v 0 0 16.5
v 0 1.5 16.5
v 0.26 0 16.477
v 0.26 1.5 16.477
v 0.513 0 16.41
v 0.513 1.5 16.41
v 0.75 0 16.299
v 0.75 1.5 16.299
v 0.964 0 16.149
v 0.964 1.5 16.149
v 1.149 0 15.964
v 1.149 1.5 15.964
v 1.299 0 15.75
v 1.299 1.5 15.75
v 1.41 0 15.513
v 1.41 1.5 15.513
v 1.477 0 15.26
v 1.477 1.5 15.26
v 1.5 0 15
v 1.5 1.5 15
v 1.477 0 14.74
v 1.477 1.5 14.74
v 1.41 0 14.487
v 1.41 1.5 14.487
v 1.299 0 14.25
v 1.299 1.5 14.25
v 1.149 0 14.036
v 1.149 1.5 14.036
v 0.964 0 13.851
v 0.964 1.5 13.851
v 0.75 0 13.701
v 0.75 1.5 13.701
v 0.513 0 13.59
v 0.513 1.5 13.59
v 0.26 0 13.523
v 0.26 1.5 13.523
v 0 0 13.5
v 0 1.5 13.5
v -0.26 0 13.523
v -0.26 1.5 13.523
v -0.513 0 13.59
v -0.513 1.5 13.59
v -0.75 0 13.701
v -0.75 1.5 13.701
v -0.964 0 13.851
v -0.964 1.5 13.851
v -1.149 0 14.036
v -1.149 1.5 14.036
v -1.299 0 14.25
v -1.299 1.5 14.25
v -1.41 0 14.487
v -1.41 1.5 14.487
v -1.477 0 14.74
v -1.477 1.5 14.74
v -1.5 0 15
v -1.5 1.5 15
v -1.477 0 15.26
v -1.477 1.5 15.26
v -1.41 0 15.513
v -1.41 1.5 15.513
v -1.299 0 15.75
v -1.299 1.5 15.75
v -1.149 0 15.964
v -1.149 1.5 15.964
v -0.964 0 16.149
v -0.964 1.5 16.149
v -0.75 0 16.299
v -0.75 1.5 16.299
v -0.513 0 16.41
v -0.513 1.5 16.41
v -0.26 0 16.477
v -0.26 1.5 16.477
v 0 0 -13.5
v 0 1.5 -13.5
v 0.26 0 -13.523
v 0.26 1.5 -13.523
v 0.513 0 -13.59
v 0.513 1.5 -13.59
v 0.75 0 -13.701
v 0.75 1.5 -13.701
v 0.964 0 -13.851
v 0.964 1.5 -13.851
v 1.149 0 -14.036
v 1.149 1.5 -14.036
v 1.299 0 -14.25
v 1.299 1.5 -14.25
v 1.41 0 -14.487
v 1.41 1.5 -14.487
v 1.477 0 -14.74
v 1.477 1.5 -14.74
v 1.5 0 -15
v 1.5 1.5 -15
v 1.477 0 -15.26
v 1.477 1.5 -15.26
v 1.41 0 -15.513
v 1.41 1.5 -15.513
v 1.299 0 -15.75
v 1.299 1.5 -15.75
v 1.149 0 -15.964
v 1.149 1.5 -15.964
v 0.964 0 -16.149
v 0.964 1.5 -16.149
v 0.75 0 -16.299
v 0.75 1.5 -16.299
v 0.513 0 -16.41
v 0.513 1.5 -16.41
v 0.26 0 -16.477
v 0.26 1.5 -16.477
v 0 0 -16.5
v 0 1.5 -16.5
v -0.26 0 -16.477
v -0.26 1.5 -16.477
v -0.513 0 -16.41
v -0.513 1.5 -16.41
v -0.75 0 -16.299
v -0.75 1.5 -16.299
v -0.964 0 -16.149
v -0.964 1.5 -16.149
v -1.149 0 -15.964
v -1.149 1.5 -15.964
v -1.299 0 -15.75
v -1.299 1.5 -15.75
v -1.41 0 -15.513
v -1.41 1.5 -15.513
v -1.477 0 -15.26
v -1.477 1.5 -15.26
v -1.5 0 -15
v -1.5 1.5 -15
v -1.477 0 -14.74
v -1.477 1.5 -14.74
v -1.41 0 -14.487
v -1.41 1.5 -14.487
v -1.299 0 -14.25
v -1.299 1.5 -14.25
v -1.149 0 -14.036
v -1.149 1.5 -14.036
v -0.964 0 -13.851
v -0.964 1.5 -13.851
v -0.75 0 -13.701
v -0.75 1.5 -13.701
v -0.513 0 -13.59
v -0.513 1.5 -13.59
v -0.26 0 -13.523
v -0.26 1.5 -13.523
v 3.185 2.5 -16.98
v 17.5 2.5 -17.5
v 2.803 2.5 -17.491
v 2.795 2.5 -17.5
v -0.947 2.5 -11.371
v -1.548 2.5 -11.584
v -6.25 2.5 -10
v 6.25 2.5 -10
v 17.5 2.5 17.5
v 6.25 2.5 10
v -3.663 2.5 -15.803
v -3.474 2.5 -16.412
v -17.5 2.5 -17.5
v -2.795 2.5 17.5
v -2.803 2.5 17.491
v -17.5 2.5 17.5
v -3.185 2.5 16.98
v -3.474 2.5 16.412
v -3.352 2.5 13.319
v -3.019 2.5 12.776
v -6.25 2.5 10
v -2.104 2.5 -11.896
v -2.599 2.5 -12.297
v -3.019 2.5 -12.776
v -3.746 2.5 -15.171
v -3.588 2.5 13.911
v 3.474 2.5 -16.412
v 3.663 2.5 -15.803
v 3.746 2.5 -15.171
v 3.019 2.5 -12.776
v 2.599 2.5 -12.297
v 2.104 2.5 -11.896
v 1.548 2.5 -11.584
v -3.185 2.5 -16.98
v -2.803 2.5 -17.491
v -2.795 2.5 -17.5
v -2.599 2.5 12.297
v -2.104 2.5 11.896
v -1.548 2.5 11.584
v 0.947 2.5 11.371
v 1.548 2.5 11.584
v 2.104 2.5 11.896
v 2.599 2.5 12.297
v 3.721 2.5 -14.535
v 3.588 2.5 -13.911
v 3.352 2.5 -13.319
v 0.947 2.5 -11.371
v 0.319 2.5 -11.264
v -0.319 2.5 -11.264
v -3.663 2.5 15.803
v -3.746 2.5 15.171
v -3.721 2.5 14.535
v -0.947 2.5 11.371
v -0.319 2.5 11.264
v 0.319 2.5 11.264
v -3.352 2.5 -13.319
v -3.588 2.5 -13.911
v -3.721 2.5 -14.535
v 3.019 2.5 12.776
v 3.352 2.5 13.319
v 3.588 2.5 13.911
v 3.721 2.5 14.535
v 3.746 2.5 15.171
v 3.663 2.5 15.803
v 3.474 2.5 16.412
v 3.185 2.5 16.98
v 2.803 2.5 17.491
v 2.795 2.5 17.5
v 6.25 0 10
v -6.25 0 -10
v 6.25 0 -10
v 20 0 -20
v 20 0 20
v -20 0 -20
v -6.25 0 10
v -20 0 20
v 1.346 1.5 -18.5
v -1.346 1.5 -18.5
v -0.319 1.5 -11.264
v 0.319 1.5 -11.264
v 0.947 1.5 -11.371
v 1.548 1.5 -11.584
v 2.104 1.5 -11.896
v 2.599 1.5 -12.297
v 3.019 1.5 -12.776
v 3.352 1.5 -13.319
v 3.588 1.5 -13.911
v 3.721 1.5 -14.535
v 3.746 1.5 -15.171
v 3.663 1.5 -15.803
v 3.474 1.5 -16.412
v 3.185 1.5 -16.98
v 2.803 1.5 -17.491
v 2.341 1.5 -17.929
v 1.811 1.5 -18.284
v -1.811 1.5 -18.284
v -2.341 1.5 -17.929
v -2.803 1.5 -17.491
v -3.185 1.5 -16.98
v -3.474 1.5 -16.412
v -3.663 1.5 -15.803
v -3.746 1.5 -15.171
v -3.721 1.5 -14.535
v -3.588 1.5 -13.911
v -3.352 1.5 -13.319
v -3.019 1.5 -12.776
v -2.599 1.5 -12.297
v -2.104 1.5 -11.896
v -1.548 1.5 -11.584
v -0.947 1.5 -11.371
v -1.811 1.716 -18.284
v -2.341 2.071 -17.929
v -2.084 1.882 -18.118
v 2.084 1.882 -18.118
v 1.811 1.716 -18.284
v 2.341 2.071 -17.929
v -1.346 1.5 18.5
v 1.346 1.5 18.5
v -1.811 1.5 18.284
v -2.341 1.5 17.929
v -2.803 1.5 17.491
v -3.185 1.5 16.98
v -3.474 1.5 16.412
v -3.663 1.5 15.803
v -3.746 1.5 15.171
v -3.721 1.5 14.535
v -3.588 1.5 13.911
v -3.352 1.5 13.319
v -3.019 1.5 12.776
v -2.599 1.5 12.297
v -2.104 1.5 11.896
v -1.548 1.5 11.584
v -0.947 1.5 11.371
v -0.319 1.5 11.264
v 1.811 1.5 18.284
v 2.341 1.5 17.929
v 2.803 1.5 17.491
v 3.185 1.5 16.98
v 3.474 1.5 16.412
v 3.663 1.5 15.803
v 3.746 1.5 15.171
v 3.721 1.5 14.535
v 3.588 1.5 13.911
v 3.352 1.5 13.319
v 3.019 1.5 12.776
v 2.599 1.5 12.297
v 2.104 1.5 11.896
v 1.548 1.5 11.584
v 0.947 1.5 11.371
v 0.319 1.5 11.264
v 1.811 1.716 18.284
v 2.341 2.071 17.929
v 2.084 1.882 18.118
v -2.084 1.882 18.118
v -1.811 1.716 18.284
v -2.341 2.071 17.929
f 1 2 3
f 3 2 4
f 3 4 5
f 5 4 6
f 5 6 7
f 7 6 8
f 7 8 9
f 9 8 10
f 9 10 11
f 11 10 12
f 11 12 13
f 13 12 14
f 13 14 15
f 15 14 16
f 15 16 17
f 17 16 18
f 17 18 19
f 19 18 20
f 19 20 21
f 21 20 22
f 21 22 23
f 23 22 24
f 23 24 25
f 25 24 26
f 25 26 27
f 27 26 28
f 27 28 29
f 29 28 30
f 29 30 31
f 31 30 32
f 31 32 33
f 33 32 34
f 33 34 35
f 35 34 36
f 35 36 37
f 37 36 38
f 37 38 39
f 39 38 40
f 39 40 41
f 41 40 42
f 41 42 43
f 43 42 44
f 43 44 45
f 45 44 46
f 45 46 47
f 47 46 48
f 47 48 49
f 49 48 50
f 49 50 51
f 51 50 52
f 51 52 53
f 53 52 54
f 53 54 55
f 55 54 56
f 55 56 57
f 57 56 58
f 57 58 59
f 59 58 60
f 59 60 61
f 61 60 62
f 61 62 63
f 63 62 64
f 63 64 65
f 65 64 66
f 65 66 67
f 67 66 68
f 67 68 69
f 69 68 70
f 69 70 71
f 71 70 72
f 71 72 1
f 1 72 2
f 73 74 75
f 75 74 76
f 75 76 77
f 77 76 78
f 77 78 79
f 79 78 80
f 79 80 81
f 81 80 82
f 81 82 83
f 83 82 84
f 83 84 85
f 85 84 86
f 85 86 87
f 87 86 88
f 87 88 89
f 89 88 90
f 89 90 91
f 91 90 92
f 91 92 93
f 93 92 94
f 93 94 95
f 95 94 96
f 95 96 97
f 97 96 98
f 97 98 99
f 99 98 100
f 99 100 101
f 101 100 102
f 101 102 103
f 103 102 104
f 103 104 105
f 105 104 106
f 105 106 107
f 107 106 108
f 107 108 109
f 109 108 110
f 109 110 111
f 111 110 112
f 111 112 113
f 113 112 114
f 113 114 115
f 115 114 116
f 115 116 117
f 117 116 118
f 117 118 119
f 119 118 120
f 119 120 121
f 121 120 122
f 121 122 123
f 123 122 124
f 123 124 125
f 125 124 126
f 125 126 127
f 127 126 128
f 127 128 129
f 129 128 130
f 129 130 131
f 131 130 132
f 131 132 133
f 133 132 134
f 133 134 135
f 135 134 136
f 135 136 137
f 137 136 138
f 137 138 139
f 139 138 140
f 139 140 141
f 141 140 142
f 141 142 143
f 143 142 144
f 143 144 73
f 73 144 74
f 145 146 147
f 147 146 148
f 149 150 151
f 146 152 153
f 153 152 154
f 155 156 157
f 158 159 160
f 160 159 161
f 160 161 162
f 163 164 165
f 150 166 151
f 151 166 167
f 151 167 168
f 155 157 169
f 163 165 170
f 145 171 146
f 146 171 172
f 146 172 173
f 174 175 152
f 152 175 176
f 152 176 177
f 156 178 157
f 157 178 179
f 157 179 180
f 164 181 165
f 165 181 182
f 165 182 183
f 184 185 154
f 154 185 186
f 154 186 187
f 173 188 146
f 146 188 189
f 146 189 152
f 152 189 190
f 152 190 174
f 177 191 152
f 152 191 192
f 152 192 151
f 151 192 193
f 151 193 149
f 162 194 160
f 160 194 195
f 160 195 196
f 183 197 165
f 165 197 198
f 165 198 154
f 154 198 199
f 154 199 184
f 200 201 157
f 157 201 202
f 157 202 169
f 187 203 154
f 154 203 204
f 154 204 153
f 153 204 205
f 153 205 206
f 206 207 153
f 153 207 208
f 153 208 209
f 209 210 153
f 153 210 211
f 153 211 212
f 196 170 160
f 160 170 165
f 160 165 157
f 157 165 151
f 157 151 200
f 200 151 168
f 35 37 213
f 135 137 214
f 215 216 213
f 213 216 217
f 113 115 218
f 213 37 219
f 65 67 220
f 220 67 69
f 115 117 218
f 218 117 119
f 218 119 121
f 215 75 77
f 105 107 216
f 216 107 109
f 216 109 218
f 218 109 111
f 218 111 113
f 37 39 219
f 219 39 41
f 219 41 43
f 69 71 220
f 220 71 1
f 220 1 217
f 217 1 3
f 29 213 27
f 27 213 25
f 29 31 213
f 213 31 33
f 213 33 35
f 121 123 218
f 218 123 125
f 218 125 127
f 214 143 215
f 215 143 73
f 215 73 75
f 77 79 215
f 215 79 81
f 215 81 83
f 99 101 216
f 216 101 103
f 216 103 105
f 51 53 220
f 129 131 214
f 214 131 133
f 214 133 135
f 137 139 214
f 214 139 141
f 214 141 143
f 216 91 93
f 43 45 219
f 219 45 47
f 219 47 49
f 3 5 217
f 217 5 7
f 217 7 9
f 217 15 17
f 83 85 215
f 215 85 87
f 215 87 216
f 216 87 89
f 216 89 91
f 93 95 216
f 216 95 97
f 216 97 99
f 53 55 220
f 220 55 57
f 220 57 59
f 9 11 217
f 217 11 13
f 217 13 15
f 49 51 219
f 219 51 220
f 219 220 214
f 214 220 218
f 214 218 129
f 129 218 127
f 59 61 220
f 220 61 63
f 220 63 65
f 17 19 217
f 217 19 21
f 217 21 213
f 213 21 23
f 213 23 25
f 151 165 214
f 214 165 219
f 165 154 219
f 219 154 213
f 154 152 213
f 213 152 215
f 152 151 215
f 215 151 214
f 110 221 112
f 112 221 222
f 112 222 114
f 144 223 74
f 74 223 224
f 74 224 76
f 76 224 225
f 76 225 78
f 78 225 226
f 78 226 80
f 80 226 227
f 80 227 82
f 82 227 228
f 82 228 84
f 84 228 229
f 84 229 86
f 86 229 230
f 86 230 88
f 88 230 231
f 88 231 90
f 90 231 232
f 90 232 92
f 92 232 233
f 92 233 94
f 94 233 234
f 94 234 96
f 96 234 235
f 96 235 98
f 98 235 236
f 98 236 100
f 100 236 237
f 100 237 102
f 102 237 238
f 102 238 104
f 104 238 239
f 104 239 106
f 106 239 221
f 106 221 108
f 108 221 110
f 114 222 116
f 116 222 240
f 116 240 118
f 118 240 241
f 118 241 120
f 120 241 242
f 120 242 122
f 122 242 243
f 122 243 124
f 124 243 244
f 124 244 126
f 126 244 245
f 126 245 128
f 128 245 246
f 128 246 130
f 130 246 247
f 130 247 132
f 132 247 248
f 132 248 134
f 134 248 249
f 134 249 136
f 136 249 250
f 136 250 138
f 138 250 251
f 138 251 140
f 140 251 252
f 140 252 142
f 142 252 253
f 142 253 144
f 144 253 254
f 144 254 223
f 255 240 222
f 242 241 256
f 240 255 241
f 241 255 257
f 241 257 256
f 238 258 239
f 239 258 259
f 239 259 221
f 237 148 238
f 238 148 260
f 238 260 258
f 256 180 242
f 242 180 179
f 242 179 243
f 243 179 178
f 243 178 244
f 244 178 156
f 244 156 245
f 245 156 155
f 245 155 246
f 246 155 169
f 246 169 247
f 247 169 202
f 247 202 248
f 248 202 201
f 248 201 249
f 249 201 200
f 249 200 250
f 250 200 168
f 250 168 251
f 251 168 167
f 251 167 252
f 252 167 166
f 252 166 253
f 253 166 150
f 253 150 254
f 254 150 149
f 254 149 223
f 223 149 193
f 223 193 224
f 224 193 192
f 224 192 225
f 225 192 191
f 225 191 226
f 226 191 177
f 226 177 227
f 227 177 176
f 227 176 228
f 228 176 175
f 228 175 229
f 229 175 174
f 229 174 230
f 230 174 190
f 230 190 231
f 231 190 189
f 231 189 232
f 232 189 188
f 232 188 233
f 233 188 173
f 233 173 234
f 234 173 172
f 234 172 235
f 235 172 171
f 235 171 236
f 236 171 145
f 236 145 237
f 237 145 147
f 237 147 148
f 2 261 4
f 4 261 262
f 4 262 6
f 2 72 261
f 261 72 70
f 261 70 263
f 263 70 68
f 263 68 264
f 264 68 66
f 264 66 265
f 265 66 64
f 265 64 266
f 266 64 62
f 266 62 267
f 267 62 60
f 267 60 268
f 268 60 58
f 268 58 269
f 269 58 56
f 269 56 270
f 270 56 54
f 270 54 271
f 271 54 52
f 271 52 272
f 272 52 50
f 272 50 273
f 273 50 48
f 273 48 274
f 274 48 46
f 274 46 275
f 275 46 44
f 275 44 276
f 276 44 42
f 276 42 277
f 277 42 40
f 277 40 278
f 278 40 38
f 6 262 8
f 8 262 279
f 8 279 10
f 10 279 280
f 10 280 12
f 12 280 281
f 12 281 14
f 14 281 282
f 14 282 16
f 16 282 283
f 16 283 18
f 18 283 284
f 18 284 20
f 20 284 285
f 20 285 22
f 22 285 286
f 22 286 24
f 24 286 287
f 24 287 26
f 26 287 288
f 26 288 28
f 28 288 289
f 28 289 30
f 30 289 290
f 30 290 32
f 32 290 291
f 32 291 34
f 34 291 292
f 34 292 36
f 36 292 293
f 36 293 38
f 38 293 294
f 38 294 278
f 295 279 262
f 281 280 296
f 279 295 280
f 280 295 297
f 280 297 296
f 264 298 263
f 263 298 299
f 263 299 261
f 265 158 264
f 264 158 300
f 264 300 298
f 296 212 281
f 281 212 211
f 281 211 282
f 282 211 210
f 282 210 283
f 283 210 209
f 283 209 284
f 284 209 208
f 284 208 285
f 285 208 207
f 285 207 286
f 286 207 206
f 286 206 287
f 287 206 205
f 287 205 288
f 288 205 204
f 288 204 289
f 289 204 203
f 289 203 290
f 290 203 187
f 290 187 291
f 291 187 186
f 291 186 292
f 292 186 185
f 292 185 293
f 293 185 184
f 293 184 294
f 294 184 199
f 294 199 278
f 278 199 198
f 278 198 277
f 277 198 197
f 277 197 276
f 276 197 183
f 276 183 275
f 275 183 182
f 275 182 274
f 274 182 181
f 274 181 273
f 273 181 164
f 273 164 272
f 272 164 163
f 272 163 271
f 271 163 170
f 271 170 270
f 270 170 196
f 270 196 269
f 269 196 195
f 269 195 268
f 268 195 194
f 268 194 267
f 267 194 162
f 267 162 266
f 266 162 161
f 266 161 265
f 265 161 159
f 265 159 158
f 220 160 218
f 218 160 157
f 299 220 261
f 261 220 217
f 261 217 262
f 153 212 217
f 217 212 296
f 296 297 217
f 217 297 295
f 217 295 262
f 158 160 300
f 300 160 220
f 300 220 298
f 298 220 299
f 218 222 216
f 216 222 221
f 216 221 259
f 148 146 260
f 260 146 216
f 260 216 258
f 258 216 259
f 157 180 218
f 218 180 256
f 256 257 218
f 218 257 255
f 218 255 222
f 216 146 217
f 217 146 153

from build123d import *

# Parameters (mm, degrees)
SKETCH1_W           = 40
SKETCH1_H           = 40
SKETCH1_W_2         = 12.5
SKETCH1_H_2         = 20
BOSS_EXTRUDE1_DEPTH = 2.5
SKETCH2_R           = 1.5
CUT_EXTRUDE1_DEPTH  = 10
SKETCH3_R           = 3.75
CUT_EXTRUDE2_DEPTH  = 1
CHAMFER1_SIZE       = 2.5


with BuildPart() as part:
    # Sketch1 → Boss-Extrude1 (new body)
    with BuildSketch(Plane(origin=(0, 0, 0), x_dir=(1, 0, 0), z_dir=(0, 1, 0))):
        Rectangle(SKETCH1_W, SKETCH1_H)
        Rectangle(SKETCH1_W_2, SKETCH1_H_2, mode=Mode.SUBTRACT)
    extrude(amount=BOSS_EXTRUDE1_DEPTH)

    # Sketch2 → Cut-Extrude1 (cut)
    with BuildSketch(Plane(origin=(0, 2.5, 0), x_dir=(1, 0, 0), z_dir=(0, 1, 0))):
        with Locations(Location((0, 15, 0), (0, 0, 270))):
            Circle(SKETCH2_R)
        with Locations(Location((0, -15, 0), (0, 0, 270))):
            Circle(SKETCH2_R)
    extrude(amount=-CUT_EXTRUDE1_DEPTH, mode=Mode.SUBTRACT)

    # Sketch3 → Cut-Extrude2 (cut)
    with BuildSketch(Plane(origin=(0, 2.5, 0), x_dir=(1, 0, 0), z_dir=(0, 1, 0))):
        with Locations(Location((0, 15, 0), (0, 0, 270))):
            Circle(SKETCH3_R)
        with Locations(Location((0, -15, 0), (0, 0, 270))):
            Circle(SKETCH3_R)
    extrude(amount=-CUT_EXTRUDE2_DEPTH, mode=Mode.SUBTRACT)

    # Chamfer1
    # the kernel refuses this chamfer: 2.5 mm, written as the material it takes off along each edge
    with BuildSketch(Plane(origin=(20, 2.5, -26.42920747), x_dir=(0.027495876610586317, -0.9996219169112968, 0), z_dir=(0, 0, 1)), Plane(origin=(-26.42920747, 2.5, -20), x_dir=(0, -0.9996219169112968, -0.027495876610586317), z_dir=(1, 0, 0)), Plane(origin=(-20, 2.5, 26.42920747), x_dir=(-0.027495876610586317, -0.9996219169112968, 0), z_dir=(0, 0, -1))) as chamfer1_piece_1:
        Polygon((CHAMFER1_SIZE * 0.999621916911, -CHAMFER1_SIZE * 0.0274958766106), (-CHAMFER1_SIZE * 0.0274958766106, -CHAMFER1_SIZE * 0.999621916911), (0, 0), align=None)
    extrude(amount=52.85841494, mode=Mode.SUBTRACT)
    with BuildSketch(Plane(origin=(26.42920747, 2.5, 20), x_dir=(0, 0.027495876610586317, -0.9996219169112968), z_dir=(-1, 0, 0))) as chamfer1_piece_2:
        Polygon((CHAMFER1_SIZE * 0.999621916911, CHAMFER1_SIZE * 0.0274958766106), (-CHAMFER1_SIZE * 0.0274958766106, CHAMFER1_SIZE * 0.999621916911), (0, 0), align=None)
    extrude(amount=52.85841494, mode=Mode.SUBTRACT)


solid = part.part
